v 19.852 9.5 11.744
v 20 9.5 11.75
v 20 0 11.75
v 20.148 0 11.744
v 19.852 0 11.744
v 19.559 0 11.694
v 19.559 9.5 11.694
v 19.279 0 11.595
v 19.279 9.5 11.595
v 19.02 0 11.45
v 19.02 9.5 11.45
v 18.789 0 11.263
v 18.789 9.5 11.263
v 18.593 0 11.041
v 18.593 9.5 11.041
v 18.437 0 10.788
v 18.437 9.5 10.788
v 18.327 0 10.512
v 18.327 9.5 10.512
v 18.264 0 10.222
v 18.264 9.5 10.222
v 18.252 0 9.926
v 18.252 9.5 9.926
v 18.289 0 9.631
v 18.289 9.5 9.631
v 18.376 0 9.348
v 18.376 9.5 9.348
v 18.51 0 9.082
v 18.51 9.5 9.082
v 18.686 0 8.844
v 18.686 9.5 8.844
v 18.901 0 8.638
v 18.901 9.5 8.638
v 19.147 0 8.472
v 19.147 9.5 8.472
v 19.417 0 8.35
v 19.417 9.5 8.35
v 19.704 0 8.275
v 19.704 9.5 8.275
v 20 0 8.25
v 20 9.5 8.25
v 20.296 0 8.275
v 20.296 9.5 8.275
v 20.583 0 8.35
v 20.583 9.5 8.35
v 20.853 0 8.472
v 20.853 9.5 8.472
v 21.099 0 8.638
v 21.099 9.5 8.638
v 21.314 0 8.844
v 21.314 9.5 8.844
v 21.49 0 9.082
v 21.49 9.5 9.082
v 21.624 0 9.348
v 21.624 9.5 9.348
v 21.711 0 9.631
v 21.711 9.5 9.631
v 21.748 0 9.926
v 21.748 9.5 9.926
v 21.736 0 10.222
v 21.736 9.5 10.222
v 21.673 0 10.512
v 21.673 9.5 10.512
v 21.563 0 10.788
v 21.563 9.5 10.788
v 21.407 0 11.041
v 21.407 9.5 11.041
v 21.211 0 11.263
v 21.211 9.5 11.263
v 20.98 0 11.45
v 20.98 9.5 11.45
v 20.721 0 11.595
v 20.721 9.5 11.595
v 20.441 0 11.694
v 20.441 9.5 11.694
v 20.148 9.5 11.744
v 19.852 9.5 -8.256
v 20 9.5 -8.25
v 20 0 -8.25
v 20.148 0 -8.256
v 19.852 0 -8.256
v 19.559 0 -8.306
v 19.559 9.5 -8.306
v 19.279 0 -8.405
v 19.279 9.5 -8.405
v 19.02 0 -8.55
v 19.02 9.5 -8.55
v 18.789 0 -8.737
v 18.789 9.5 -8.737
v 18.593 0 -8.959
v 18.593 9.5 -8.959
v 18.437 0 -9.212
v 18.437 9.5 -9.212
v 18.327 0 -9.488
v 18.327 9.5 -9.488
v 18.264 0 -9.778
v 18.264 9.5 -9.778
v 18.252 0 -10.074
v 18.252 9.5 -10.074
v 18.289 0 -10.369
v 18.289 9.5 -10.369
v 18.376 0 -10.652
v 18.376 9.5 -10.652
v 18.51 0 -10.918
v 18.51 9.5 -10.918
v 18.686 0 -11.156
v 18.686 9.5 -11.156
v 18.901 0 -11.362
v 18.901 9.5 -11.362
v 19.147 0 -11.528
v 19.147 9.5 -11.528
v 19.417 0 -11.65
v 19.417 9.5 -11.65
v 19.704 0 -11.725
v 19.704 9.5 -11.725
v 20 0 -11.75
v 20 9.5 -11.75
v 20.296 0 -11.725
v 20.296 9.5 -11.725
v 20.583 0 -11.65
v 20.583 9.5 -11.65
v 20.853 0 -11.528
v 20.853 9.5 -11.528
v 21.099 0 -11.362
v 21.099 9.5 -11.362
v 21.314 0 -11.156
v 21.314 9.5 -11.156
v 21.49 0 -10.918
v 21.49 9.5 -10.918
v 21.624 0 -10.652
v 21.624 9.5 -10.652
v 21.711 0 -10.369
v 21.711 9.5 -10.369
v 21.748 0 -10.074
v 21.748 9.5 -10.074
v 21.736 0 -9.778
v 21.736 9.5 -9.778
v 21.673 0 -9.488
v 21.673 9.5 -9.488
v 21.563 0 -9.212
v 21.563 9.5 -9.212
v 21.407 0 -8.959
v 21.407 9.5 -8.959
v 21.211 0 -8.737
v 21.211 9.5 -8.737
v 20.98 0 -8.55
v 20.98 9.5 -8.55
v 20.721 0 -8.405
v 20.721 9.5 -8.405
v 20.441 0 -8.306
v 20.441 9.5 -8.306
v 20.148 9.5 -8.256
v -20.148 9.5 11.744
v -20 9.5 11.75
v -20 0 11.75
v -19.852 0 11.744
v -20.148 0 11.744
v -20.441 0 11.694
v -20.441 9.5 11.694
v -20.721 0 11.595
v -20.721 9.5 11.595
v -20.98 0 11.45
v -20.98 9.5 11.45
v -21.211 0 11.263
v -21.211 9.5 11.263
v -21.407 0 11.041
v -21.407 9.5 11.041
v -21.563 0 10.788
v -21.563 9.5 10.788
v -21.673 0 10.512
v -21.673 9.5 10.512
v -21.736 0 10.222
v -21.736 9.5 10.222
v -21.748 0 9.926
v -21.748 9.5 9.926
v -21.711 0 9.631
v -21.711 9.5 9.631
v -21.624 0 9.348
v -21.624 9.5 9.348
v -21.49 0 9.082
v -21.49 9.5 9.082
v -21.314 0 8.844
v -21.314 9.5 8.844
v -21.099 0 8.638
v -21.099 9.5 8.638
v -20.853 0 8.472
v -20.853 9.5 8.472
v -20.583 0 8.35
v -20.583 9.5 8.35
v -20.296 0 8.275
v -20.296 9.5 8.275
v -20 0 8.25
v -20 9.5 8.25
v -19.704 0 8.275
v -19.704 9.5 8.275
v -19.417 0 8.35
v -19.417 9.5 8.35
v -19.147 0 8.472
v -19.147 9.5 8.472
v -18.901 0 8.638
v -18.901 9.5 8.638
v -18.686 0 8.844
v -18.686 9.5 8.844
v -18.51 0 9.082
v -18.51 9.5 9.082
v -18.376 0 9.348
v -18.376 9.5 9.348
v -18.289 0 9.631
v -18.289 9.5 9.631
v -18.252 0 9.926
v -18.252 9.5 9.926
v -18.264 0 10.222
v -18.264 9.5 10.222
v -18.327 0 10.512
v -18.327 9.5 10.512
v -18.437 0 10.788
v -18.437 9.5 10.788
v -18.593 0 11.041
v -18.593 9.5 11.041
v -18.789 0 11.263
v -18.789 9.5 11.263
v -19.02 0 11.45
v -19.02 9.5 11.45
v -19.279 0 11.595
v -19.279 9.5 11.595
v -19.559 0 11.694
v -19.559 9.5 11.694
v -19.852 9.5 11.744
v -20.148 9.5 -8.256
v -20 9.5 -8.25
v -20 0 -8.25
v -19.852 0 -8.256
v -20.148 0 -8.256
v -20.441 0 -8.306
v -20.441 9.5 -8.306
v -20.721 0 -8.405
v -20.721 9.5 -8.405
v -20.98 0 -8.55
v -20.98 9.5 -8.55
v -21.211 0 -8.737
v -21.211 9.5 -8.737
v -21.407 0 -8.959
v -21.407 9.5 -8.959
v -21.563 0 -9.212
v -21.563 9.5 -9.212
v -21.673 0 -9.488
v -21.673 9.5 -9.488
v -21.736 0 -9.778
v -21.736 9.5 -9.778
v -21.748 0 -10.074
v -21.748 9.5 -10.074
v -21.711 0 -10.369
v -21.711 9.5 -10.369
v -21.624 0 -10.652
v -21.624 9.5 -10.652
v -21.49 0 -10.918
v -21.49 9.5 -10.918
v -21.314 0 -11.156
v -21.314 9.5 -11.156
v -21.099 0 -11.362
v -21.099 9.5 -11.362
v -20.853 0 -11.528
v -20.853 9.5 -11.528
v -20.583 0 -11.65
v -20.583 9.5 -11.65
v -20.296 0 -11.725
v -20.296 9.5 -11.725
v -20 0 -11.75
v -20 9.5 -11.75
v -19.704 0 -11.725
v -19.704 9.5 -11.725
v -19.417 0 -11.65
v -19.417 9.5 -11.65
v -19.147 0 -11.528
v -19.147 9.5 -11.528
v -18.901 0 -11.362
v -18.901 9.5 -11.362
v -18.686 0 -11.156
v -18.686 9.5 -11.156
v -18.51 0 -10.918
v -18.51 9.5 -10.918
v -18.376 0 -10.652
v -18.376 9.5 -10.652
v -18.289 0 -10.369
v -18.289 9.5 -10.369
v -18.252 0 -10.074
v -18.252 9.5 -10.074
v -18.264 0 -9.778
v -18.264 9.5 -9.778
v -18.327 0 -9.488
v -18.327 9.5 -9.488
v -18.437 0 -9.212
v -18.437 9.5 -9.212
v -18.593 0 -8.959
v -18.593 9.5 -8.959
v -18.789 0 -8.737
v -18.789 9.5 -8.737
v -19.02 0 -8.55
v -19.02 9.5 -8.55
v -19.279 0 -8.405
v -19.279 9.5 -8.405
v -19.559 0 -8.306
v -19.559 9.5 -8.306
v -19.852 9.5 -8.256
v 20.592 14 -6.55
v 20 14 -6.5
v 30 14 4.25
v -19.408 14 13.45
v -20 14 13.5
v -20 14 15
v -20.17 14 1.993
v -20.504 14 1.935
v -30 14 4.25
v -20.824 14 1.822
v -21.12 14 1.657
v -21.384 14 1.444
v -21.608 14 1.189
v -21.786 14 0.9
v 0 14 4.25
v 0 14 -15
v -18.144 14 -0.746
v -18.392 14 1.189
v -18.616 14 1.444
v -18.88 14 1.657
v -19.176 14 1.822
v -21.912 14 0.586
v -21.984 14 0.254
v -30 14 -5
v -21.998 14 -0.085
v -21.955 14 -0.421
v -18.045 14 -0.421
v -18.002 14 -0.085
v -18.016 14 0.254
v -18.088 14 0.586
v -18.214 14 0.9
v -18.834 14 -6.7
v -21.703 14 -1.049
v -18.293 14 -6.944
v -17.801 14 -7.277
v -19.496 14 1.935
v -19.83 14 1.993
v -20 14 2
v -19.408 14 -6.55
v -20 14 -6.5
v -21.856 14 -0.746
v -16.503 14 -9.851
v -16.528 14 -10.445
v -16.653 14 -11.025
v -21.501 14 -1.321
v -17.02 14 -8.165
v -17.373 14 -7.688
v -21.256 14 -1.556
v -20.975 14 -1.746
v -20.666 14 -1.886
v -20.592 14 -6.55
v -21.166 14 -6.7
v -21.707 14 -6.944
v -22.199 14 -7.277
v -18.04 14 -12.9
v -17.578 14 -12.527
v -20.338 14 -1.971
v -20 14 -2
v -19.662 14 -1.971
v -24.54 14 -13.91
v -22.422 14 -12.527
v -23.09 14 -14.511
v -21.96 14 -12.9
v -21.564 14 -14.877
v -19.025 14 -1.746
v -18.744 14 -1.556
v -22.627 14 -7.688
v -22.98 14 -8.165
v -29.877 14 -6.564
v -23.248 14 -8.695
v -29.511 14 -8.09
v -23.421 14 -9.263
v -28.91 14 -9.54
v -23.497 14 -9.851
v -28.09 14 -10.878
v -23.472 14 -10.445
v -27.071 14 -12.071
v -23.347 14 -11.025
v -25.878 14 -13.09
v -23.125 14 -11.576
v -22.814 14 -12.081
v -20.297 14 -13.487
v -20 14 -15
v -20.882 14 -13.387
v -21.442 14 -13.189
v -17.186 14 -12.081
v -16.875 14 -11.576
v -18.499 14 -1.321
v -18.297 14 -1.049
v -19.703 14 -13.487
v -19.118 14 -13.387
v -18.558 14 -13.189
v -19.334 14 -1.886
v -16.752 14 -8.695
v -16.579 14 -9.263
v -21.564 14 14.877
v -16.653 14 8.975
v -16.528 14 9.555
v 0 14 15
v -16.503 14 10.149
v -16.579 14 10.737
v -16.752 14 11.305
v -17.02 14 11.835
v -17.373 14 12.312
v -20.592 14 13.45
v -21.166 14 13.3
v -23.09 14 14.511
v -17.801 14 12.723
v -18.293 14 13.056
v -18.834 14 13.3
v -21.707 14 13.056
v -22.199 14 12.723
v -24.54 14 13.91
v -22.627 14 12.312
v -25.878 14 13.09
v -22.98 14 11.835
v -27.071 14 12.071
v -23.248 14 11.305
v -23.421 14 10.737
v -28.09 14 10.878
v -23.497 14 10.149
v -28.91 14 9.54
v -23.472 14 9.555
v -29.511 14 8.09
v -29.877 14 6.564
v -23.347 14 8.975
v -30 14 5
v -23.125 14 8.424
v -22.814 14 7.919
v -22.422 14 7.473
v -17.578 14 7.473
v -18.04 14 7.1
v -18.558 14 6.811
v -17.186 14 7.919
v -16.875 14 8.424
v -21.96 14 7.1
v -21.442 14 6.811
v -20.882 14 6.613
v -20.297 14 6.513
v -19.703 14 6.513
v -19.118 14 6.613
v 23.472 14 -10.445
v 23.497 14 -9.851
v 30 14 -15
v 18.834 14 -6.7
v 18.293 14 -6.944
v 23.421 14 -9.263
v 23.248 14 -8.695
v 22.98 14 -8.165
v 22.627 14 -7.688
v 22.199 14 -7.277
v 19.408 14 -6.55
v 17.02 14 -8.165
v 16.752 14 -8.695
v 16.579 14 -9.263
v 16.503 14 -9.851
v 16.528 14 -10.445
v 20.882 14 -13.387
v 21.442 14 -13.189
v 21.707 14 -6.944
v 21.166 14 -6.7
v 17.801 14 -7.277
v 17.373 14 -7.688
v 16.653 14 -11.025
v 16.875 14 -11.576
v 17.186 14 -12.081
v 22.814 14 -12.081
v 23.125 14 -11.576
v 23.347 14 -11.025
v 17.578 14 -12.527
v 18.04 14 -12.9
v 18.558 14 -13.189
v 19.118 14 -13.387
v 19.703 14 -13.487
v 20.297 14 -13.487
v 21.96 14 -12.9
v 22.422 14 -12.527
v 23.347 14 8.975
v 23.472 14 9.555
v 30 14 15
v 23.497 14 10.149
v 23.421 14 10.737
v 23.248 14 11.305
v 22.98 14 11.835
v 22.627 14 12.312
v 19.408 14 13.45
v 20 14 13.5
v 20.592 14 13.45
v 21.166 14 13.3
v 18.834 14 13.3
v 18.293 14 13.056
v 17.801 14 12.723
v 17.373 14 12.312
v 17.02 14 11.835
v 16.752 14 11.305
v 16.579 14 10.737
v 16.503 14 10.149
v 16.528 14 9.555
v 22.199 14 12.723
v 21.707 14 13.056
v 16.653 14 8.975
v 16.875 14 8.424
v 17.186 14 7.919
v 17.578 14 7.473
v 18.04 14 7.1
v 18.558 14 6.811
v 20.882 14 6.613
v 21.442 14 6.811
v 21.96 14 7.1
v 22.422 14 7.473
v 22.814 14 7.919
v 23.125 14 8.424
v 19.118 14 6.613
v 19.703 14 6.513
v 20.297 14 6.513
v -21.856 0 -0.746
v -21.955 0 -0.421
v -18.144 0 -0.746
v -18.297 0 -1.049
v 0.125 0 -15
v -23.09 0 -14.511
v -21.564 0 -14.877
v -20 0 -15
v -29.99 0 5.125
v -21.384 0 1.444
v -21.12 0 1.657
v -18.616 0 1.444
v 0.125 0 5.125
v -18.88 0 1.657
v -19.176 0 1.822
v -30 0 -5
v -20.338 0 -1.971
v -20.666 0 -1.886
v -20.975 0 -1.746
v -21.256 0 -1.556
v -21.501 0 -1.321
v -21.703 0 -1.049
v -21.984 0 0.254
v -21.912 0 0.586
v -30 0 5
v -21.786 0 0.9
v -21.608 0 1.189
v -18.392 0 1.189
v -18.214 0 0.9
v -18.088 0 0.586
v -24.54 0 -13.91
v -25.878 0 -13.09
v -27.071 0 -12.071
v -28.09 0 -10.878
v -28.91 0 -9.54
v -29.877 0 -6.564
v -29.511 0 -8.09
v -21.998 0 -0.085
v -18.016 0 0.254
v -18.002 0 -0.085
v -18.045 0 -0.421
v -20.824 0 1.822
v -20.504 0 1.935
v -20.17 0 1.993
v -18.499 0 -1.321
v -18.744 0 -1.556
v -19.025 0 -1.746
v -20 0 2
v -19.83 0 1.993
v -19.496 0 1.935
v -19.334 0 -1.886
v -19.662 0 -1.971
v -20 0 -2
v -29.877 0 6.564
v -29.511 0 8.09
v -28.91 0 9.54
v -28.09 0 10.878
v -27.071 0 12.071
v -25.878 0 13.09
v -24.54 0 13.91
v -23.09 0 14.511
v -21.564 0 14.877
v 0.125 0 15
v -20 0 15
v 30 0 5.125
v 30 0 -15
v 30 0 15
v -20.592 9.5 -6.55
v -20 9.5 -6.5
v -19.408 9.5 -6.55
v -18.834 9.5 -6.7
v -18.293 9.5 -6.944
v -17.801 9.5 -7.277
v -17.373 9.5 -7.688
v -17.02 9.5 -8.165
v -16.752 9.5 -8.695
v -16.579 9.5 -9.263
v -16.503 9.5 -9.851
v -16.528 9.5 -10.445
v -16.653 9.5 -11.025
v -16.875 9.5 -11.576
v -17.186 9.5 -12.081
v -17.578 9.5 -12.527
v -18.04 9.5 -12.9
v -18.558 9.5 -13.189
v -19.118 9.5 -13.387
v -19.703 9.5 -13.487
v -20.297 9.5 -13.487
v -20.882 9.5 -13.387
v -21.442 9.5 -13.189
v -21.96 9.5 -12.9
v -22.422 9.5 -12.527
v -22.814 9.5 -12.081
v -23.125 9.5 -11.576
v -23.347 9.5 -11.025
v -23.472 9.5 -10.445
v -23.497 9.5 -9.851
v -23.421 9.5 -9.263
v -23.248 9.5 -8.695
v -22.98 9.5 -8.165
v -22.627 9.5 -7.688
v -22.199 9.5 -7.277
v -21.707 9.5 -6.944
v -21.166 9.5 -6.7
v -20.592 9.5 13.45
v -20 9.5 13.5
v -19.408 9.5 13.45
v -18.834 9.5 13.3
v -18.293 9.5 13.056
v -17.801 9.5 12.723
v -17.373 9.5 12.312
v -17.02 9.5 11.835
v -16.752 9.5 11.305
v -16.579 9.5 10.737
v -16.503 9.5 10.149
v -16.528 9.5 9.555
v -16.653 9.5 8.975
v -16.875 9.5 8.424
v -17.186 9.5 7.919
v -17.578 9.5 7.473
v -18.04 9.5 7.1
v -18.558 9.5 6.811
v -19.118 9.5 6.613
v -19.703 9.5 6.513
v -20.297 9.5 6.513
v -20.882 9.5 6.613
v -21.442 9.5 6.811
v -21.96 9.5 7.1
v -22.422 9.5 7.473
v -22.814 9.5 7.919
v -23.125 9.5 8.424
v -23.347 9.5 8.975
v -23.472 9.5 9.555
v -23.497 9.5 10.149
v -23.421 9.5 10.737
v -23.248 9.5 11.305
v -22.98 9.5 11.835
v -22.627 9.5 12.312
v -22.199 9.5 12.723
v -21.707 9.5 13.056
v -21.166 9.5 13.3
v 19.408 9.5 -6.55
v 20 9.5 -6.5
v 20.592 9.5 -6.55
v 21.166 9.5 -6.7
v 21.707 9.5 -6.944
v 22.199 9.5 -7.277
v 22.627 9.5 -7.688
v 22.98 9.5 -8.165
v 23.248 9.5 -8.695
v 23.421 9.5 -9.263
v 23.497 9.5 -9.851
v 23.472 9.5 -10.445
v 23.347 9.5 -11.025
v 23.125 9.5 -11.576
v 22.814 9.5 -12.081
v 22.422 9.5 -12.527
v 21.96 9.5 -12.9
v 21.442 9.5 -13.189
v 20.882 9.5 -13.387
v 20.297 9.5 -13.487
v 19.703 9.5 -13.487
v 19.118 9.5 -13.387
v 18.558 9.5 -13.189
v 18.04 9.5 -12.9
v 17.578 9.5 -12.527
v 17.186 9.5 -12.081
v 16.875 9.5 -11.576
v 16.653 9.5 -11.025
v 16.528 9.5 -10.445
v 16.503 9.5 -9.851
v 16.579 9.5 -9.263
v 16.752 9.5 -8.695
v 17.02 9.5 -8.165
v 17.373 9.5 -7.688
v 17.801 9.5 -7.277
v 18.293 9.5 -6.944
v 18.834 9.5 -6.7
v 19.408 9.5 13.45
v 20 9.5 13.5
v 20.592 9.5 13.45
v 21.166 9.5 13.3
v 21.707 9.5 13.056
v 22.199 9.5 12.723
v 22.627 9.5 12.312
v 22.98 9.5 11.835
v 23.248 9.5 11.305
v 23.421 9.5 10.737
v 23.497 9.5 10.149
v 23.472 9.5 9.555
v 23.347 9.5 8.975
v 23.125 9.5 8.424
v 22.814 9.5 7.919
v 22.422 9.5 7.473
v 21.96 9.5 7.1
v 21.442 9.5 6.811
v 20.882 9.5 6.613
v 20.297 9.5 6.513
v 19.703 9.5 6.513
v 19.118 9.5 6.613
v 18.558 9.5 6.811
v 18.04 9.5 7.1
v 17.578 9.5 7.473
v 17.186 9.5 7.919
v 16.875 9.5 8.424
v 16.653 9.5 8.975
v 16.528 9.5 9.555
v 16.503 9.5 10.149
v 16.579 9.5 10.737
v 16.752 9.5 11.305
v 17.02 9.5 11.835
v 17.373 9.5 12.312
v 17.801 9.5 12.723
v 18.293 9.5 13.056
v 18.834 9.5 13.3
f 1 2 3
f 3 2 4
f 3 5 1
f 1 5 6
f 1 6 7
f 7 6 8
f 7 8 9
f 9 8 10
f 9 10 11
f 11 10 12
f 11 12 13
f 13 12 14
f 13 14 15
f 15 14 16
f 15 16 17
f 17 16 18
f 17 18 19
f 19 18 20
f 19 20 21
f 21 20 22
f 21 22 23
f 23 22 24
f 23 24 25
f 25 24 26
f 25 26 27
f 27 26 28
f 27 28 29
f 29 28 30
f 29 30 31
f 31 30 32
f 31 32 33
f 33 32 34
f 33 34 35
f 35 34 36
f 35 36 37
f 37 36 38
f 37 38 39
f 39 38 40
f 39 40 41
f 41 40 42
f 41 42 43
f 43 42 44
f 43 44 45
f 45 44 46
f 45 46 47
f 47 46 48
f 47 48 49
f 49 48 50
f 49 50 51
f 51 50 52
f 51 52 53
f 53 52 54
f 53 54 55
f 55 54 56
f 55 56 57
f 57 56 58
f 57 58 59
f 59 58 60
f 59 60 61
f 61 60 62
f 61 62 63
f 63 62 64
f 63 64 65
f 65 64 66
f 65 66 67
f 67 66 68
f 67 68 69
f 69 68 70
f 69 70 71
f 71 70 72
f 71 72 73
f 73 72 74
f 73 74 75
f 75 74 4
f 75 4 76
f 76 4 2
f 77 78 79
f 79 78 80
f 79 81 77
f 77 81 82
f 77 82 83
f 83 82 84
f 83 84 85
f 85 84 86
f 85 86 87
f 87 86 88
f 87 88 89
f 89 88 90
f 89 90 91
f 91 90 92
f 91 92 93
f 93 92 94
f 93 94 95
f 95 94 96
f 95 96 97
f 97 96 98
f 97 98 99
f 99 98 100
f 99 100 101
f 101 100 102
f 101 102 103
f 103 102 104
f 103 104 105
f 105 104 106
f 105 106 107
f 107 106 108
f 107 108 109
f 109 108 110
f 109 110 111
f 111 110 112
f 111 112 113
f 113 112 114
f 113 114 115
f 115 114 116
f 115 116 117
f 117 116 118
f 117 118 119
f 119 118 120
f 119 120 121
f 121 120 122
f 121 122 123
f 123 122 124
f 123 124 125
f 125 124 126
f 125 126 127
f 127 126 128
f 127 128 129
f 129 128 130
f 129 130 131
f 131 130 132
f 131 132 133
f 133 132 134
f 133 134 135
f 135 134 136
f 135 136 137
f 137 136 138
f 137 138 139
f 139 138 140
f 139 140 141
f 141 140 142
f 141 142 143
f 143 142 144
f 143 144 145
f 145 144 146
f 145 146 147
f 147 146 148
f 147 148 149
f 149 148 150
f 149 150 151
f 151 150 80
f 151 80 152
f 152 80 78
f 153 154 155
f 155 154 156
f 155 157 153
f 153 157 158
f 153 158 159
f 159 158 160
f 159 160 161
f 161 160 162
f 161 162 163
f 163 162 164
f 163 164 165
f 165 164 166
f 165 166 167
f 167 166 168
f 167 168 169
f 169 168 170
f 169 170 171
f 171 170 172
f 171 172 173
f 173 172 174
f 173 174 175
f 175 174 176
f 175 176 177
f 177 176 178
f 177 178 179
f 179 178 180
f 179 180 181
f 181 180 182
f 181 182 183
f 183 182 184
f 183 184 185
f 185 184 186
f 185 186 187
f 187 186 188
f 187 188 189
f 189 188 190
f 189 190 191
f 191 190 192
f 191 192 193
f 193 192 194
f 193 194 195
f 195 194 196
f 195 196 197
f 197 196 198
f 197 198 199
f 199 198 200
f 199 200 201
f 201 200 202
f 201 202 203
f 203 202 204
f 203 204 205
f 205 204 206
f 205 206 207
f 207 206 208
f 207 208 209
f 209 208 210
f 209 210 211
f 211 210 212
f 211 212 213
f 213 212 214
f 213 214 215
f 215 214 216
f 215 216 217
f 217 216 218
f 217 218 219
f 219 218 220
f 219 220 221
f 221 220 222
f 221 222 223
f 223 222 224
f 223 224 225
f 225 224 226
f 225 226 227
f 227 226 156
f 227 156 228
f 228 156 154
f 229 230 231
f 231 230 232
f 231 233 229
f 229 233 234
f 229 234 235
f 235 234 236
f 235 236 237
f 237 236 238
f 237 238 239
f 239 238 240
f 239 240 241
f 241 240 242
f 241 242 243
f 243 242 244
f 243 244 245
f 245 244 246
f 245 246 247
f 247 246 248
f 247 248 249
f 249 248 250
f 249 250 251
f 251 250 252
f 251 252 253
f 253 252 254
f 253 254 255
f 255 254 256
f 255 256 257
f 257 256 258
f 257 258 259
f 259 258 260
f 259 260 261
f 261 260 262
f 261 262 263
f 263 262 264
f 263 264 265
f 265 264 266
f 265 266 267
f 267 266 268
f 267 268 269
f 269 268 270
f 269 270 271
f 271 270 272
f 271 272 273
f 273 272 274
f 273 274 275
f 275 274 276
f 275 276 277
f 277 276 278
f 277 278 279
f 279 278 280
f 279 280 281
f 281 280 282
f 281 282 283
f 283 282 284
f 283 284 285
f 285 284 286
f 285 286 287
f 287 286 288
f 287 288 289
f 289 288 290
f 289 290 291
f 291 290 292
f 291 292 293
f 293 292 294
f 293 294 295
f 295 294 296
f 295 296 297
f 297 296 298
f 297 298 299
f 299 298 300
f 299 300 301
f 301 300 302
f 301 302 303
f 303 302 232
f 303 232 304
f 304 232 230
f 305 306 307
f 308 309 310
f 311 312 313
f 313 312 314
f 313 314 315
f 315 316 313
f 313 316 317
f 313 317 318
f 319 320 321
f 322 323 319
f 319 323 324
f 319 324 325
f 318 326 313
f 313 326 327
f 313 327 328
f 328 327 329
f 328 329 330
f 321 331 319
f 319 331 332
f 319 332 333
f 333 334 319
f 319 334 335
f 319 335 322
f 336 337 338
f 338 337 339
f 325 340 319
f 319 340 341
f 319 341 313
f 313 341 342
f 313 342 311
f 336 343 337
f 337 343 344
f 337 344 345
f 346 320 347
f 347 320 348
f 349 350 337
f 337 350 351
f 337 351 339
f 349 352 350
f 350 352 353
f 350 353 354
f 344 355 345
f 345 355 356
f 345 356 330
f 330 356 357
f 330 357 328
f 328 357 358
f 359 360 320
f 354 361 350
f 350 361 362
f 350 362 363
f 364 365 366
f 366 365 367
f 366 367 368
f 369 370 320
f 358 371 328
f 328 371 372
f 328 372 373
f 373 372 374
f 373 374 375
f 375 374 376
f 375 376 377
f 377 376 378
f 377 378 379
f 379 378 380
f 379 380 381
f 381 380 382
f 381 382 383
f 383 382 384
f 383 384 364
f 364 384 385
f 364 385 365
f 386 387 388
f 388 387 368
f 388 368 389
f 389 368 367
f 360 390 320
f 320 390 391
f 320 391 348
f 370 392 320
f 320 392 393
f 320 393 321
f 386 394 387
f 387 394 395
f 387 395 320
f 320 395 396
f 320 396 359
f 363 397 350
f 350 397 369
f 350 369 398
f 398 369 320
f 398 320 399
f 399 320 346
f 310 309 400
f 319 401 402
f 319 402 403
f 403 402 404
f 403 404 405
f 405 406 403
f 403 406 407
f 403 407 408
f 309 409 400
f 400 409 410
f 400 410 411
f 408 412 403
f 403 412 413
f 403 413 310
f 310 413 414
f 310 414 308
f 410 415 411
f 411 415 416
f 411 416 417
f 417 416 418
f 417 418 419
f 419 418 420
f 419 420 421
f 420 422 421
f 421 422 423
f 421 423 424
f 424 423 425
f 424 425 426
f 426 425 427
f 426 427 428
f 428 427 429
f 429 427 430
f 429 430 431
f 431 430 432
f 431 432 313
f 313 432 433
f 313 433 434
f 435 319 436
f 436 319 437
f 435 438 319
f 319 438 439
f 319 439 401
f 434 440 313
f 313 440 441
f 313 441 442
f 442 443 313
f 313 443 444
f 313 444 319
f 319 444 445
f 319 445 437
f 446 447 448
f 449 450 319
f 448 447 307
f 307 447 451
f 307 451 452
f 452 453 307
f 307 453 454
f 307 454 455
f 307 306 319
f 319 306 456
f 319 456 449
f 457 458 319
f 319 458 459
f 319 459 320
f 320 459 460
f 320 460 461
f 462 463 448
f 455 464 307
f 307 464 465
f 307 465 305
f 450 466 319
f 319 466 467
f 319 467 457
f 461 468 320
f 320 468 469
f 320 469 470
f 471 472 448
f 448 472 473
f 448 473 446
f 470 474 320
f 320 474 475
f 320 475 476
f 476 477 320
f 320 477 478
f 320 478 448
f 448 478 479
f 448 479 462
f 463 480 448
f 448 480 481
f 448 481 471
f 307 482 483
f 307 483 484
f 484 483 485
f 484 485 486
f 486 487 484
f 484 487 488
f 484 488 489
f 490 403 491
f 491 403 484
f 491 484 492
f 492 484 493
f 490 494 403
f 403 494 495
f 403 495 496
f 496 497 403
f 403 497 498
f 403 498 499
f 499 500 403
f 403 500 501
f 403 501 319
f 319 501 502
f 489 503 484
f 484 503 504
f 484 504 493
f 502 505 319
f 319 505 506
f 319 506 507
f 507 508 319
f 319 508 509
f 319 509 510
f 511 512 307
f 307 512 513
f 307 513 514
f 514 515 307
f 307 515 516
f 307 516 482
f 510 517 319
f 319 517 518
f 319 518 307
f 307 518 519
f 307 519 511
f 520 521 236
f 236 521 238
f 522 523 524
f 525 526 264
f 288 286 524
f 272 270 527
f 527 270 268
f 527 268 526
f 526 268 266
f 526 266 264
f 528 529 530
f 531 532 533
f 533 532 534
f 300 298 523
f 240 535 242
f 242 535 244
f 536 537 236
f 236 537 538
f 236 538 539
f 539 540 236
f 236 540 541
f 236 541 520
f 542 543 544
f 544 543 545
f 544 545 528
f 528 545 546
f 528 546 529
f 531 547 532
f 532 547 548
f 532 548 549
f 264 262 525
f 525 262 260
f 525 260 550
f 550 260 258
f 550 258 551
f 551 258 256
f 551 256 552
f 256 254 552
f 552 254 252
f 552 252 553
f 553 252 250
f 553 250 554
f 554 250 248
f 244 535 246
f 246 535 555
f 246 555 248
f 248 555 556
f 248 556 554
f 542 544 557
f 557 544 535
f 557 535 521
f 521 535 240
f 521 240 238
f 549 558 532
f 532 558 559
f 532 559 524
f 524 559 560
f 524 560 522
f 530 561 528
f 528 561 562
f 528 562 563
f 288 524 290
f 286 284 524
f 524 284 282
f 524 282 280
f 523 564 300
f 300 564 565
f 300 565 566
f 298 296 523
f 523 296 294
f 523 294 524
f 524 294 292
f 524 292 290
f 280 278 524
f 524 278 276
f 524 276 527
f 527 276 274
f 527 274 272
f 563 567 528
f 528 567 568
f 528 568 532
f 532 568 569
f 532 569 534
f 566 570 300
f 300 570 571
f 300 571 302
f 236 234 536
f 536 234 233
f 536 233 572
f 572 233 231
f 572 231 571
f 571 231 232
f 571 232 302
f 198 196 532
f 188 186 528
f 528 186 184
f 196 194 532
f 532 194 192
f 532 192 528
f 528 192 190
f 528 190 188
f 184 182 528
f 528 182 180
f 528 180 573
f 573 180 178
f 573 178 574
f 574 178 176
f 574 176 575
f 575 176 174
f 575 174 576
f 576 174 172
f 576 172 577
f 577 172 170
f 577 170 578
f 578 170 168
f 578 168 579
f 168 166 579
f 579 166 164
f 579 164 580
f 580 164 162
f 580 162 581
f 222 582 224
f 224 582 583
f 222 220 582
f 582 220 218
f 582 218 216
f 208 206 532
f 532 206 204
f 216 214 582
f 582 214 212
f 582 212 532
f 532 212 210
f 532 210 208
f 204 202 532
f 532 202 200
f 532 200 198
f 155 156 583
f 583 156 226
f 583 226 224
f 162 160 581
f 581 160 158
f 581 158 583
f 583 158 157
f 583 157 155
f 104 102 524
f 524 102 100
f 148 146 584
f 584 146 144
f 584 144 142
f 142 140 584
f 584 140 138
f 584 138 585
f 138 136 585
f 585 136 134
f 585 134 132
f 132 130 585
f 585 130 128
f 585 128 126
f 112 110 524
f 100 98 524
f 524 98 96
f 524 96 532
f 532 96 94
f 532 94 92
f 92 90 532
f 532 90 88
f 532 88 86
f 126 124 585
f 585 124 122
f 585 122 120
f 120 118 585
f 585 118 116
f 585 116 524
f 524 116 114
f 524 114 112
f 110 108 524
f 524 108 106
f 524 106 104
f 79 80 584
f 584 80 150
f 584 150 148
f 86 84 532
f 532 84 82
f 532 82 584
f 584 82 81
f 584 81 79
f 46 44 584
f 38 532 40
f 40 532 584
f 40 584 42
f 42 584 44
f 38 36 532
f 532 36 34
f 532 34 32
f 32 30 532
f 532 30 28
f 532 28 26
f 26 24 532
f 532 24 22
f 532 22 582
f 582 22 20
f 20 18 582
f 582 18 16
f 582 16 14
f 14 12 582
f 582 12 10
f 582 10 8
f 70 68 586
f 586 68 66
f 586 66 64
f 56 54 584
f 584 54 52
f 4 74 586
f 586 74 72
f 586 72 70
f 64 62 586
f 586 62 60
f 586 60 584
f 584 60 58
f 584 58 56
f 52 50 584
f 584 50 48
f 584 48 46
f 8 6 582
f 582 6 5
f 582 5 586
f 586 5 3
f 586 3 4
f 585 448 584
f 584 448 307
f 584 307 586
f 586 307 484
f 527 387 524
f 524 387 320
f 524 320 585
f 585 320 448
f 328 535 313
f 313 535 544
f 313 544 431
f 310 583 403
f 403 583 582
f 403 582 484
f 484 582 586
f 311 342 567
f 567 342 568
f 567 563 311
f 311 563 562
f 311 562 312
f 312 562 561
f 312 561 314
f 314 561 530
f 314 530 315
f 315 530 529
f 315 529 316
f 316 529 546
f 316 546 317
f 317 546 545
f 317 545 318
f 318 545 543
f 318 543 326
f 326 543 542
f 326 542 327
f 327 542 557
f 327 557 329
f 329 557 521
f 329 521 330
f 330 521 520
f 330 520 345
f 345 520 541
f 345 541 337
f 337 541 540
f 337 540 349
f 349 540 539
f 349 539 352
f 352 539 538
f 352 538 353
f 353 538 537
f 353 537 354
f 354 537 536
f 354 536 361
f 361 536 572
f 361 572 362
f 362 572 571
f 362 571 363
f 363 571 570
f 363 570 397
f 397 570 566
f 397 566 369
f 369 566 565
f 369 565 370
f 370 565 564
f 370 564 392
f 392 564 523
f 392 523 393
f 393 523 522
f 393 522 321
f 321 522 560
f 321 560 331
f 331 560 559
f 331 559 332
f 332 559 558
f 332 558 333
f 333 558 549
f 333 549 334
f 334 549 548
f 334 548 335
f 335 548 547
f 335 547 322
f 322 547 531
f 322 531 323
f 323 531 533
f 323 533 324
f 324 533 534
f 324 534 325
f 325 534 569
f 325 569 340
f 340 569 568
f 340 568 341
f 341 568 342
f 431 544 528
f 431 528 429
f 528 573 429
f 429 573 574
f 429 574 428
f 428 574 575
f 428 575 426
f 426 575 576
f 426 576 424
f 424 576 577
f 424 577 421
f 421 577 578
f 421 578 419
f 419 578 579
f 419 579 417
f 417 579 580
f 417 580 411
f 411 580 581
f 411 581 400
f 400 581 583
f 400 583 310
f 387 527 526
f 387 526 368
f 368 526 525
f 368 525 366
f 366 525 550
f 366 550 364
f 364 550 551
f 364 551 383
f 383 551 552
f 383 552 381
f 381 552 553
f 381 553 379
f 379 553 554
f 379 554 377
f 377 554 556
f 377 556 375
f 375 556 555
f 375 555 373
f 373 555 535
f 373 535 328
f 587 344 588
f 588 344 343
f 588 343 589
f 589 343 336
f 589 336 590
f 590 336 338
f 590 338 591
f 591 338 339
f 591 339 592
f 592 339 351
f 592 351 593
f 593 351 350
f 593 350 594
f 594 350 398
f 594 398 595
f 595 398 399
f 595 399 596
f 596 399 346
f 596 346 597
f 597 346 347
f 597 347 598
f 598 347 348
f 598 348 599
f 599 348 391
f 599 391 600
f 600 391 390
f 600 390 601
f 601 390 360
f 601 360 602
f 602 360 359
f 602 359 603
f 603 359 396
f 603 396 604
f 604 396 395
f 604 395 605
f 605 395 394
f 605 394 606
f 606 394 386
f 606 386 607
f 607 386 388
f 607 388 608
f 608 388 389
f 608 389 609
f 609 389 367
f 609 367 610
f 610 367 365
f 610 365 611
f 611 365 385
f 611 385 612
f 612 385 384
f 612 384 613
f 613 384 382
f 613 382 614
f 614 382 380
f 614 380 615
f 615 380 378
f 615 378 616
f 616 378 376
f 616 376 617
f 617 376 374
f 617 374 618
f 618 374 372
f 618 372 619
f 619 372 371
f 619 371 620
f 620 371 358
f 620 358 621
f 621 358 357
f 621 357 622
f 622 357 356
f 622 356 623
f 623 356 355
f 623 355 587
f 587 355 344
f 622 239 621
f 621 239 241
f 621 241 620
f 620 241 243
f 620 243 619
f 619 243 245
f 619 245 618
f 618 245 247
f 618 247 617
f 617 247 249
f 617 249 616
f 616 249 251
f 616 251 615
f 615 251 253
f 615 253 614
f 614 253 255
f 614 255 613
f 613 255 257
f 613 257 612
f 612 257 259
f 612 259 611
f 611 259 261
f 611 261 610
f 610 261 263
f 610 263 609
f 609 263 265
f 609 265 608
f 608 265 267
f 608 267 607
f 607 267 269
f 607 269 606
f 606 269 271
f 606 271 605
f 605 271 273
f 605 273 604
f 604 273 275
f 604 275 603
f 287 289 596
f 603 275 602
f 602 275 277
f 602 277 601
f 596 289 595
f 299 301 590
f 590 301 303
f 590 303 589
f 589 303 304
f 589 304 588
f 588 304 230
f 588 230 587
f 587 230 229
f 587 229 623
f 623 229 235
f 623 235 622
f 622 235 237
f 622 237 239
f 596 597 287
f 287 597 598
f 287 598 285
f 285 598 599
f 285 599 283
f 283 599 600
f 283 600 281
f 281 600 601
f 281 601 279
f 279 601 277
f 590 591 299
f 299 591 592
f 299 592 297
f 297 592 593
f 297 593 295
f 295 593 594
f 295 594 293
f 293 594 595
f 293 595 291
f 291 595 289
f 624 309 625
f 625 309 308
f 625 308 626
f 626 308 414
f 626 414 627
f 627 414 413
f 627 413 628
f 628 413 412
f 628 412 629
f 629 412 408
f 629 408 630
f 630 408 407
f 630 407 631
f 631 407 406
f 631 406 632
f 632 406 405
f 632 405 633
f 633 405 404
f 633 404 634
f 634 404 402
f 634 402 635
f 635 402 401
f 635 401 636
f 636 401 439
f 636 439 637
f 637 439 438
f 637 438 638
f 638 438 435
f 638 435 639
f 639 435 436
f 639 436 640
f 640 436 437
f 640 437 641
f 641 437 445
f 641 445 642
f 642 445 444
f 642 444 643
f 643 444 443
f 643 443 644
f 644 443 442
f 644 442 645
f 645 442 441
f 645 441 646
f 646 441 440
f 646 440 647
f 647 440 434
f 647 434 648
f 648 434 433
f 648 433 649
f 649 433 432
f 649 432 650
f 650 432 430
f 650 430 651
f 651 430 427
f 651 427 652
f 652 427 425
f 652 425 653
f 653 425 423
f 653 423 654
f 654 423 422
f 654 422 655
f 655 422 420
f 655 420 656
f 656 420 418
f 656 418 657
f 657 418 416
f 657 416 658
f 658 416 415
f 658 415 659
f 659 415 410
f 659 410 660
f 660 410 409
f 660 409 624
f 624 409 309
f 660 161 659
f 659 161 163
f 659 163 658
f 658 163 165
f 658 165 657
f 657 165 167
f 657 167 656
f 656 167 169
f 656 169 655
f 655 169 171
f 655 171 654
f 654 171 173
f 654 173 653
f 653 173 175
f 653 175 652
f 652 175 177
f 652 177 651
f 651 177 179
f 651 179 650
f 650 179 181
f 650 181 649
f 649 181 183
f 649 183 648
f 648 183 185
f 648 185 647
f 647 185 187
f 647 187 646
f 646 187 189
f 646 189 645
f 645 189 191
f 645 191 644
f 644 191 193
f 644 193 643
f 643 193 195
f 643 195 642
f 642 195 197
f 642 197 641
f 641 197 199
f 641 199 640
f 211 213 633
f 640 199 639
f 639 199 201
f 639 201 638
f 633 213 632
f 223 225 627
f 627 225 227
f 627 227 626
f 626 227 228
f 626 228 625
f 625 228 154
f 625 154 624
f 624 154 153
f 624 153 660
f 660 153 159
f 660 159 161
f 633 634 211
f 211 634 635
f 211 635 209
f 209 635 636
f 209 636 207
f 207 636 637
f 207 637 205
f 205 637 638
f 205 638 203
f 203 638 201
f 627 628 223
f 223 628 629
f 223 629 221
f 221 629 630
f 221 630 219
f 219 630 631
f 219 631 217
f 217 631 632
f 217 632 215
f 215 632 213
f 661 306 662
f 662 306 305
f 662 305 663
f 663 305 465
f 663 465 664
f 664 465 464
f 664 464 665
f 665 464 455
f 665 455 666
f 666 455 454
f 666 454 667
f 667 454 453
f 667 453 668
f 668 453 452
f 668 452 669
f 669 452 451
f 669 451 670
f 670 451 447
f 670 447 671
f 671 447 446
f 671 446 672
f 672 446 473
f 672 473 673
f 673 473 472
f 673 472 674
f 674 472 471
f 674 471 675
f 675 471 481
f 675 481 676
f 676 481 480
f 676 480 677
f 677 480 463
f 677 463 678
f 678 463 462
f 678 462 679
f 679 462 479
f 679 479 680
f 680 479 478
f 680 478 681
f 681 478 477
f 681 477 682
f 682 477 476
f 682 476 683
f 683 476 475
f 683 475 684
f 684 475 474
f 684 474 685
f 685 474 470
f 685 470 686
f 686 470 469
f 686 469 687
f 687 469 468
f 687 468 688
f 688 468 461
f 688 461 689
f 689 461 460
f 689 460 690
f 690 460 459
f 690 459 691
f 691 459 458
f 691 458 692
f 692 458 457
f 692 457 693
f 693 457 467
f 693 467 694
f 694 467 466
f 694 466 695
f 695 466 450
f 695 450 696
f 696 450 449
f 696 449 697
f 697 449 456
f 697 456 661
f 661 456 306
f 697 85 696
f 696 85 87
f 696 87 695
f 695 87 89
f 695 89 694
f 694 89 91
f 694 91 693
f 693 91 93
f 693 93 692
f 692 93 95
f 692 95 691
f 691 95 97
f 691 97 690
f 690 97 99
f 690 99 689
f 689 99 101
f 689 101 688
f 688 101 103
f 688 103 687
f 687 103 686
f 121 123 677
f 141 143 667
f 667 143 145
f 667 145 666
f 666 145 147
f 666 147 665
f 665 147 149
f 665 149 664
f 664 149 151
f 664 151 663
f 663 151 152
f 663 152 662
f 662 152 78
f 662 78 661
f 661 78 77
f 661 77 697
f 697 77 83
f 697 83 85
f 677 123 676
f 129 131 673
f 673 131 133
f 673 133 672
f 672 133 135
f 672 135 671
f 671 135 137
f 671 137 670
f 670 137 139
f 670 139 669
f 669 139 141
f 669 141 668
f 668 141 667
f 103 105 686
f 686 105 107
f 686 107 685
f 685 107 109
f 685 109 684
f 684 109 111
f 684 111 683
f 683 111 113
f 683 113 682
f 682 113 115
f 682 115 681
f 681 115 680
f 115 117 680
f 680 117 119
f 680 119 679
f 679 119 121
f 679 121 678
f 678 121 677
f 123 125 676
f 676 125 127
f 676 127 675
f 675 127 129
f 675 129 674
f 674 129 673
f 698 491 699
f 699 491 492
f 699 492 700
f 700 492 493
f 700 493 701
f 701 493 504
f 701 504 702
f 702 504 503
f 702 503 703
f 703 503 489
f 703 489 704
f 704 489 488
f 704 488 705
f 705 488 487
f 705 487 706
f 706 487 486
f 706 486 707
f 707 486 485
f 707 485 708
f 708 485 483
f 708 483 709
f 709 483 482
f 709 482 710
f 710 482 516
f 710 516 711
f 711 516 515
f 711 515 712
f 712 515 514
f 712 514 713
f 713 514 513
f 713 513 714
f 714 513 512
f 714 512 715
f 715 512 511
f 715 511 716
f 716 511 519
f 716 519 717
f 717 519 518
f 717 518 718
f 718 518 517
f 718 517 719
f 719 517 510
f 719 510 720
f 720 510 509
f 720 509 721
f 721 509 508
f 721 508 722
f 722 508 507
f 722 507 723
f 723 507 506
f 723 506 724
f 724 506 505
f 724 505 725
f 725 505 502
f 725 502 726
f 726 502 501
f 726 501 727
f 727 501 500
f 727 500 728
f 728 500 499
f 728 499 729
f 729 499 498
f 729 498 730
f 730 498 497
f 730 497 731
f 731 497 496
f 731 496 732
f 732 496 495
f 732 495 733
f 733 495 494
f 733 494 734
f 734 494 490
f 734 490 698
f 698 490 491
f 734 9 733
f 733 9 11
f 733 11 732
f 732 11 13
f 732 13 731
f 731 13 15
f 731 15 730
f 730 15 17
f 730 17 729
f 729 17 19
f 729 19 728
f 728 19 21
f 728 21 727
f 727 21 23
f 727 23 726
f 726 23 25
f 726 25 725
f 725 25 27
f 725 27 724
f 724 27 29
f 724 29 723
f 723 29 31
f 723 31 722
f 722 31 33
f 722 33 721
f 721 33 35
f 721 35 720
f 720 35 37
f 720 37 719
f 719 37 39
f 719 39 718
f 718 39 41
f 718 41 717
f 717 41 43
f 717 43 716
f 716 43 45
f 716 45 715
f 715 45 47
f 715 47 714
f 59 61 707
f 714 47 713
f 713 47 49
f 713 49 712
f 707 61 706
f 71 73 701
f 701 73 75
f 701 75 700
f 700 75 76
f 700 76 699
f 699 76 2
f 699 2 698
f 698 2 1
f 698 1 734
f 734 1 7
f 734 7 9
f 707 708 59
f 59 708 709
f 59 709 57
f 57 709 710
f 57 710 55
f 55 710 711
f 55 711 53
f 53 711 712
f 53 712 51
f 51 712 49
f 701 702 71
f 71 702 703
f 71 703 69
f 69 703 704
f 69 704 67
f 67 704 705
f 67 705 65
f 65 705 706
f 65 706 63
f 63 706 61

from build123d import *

# Parameters (mm, degrees)
SKETCH_1_W          = 60
SKETCH_1_H          = 30
SKETCH_1_R          = 2
SKETCH_1_R_2        = 1.75
EXTRUDE_1_DEPTH     = 14
FILLET_1_R          = 10
SKETCH_2_R          = 3.5
CUT_EXTRUDE_1_DEPTH = 4.5


with BuildPart() as part:
    # 草图1 → 凸台-拉伸1 (new body)
    with BuildSketch(Plane(origin=(0, 0, 0), x_dir=(1, 0, 0), z_dir=(0, 1, 0))):
        Rectangle(SKETCH_1_W, SKETCH_1_H)
        with Locations(Location((-20, 0, 0), (0, 0, 270))):
            Circle(SKETCH_1_R, mode=Mode.SUBTRACT)
        with Locations(Location((-20, 10, 0), (0, 0, 270))):
            Circle(SKETCH_1_R_2, mode=Mode.SUBTRACT)
        with Locations(Location((20, 10, 0), (0, 0, 270))):
            Circle(SKETCH_1_R_2, mode=Mode.SUBTRACT)
        with Locations(Location((-20, -10, 0), (0, 0, 270))):
            Circle(SKETCH_1_R_2, mode=Mode.SUBTRACT)
        with Locations(Location((20, -10, 0), (0, 0, 270))):
            Circle(SKETCH_1_R_2, mode=Mode.SUBTRACT)
    extrude(amount=EXTRUDE_1_DEPTH)

    # 圆角1
    fillet_1_edges = [part.edges().sort_by_distance(p)[0] for p in [
        (-30, 7, 15),
        (-30, 7, -15),
    ]]
    fillet(fillet_1_edges, radius=FILLET_1_R)

    # 草图2 → 切除-拉伸1 (cut)
    with BuildSketch(Plane(origin=(0, 14, 0), x_dir=(1, 0, 0), z_dir=(0, 1, 0))):
        with Locations(Location((-20, 10, 0), (0, 0, 270))):
            Circle(SKETCH_2_R)
        with Locations(Location((-20, -10, 0), (0, 0, 270))):
            Circle(SKETCH_2_R)
        with Locations(Location((20, 10, 0), (0, 0, 270))):
            Circle(SKETCH_2_R)
        with Locations(Location((20, -10, 0), (0, 0, 270))):
            Circle(SKETCH_2_R)
    extrude(amount=-CUT_EXTRUDE_1_DEPTH, mode=Mode.SUBTRACT)


solid = part.part
